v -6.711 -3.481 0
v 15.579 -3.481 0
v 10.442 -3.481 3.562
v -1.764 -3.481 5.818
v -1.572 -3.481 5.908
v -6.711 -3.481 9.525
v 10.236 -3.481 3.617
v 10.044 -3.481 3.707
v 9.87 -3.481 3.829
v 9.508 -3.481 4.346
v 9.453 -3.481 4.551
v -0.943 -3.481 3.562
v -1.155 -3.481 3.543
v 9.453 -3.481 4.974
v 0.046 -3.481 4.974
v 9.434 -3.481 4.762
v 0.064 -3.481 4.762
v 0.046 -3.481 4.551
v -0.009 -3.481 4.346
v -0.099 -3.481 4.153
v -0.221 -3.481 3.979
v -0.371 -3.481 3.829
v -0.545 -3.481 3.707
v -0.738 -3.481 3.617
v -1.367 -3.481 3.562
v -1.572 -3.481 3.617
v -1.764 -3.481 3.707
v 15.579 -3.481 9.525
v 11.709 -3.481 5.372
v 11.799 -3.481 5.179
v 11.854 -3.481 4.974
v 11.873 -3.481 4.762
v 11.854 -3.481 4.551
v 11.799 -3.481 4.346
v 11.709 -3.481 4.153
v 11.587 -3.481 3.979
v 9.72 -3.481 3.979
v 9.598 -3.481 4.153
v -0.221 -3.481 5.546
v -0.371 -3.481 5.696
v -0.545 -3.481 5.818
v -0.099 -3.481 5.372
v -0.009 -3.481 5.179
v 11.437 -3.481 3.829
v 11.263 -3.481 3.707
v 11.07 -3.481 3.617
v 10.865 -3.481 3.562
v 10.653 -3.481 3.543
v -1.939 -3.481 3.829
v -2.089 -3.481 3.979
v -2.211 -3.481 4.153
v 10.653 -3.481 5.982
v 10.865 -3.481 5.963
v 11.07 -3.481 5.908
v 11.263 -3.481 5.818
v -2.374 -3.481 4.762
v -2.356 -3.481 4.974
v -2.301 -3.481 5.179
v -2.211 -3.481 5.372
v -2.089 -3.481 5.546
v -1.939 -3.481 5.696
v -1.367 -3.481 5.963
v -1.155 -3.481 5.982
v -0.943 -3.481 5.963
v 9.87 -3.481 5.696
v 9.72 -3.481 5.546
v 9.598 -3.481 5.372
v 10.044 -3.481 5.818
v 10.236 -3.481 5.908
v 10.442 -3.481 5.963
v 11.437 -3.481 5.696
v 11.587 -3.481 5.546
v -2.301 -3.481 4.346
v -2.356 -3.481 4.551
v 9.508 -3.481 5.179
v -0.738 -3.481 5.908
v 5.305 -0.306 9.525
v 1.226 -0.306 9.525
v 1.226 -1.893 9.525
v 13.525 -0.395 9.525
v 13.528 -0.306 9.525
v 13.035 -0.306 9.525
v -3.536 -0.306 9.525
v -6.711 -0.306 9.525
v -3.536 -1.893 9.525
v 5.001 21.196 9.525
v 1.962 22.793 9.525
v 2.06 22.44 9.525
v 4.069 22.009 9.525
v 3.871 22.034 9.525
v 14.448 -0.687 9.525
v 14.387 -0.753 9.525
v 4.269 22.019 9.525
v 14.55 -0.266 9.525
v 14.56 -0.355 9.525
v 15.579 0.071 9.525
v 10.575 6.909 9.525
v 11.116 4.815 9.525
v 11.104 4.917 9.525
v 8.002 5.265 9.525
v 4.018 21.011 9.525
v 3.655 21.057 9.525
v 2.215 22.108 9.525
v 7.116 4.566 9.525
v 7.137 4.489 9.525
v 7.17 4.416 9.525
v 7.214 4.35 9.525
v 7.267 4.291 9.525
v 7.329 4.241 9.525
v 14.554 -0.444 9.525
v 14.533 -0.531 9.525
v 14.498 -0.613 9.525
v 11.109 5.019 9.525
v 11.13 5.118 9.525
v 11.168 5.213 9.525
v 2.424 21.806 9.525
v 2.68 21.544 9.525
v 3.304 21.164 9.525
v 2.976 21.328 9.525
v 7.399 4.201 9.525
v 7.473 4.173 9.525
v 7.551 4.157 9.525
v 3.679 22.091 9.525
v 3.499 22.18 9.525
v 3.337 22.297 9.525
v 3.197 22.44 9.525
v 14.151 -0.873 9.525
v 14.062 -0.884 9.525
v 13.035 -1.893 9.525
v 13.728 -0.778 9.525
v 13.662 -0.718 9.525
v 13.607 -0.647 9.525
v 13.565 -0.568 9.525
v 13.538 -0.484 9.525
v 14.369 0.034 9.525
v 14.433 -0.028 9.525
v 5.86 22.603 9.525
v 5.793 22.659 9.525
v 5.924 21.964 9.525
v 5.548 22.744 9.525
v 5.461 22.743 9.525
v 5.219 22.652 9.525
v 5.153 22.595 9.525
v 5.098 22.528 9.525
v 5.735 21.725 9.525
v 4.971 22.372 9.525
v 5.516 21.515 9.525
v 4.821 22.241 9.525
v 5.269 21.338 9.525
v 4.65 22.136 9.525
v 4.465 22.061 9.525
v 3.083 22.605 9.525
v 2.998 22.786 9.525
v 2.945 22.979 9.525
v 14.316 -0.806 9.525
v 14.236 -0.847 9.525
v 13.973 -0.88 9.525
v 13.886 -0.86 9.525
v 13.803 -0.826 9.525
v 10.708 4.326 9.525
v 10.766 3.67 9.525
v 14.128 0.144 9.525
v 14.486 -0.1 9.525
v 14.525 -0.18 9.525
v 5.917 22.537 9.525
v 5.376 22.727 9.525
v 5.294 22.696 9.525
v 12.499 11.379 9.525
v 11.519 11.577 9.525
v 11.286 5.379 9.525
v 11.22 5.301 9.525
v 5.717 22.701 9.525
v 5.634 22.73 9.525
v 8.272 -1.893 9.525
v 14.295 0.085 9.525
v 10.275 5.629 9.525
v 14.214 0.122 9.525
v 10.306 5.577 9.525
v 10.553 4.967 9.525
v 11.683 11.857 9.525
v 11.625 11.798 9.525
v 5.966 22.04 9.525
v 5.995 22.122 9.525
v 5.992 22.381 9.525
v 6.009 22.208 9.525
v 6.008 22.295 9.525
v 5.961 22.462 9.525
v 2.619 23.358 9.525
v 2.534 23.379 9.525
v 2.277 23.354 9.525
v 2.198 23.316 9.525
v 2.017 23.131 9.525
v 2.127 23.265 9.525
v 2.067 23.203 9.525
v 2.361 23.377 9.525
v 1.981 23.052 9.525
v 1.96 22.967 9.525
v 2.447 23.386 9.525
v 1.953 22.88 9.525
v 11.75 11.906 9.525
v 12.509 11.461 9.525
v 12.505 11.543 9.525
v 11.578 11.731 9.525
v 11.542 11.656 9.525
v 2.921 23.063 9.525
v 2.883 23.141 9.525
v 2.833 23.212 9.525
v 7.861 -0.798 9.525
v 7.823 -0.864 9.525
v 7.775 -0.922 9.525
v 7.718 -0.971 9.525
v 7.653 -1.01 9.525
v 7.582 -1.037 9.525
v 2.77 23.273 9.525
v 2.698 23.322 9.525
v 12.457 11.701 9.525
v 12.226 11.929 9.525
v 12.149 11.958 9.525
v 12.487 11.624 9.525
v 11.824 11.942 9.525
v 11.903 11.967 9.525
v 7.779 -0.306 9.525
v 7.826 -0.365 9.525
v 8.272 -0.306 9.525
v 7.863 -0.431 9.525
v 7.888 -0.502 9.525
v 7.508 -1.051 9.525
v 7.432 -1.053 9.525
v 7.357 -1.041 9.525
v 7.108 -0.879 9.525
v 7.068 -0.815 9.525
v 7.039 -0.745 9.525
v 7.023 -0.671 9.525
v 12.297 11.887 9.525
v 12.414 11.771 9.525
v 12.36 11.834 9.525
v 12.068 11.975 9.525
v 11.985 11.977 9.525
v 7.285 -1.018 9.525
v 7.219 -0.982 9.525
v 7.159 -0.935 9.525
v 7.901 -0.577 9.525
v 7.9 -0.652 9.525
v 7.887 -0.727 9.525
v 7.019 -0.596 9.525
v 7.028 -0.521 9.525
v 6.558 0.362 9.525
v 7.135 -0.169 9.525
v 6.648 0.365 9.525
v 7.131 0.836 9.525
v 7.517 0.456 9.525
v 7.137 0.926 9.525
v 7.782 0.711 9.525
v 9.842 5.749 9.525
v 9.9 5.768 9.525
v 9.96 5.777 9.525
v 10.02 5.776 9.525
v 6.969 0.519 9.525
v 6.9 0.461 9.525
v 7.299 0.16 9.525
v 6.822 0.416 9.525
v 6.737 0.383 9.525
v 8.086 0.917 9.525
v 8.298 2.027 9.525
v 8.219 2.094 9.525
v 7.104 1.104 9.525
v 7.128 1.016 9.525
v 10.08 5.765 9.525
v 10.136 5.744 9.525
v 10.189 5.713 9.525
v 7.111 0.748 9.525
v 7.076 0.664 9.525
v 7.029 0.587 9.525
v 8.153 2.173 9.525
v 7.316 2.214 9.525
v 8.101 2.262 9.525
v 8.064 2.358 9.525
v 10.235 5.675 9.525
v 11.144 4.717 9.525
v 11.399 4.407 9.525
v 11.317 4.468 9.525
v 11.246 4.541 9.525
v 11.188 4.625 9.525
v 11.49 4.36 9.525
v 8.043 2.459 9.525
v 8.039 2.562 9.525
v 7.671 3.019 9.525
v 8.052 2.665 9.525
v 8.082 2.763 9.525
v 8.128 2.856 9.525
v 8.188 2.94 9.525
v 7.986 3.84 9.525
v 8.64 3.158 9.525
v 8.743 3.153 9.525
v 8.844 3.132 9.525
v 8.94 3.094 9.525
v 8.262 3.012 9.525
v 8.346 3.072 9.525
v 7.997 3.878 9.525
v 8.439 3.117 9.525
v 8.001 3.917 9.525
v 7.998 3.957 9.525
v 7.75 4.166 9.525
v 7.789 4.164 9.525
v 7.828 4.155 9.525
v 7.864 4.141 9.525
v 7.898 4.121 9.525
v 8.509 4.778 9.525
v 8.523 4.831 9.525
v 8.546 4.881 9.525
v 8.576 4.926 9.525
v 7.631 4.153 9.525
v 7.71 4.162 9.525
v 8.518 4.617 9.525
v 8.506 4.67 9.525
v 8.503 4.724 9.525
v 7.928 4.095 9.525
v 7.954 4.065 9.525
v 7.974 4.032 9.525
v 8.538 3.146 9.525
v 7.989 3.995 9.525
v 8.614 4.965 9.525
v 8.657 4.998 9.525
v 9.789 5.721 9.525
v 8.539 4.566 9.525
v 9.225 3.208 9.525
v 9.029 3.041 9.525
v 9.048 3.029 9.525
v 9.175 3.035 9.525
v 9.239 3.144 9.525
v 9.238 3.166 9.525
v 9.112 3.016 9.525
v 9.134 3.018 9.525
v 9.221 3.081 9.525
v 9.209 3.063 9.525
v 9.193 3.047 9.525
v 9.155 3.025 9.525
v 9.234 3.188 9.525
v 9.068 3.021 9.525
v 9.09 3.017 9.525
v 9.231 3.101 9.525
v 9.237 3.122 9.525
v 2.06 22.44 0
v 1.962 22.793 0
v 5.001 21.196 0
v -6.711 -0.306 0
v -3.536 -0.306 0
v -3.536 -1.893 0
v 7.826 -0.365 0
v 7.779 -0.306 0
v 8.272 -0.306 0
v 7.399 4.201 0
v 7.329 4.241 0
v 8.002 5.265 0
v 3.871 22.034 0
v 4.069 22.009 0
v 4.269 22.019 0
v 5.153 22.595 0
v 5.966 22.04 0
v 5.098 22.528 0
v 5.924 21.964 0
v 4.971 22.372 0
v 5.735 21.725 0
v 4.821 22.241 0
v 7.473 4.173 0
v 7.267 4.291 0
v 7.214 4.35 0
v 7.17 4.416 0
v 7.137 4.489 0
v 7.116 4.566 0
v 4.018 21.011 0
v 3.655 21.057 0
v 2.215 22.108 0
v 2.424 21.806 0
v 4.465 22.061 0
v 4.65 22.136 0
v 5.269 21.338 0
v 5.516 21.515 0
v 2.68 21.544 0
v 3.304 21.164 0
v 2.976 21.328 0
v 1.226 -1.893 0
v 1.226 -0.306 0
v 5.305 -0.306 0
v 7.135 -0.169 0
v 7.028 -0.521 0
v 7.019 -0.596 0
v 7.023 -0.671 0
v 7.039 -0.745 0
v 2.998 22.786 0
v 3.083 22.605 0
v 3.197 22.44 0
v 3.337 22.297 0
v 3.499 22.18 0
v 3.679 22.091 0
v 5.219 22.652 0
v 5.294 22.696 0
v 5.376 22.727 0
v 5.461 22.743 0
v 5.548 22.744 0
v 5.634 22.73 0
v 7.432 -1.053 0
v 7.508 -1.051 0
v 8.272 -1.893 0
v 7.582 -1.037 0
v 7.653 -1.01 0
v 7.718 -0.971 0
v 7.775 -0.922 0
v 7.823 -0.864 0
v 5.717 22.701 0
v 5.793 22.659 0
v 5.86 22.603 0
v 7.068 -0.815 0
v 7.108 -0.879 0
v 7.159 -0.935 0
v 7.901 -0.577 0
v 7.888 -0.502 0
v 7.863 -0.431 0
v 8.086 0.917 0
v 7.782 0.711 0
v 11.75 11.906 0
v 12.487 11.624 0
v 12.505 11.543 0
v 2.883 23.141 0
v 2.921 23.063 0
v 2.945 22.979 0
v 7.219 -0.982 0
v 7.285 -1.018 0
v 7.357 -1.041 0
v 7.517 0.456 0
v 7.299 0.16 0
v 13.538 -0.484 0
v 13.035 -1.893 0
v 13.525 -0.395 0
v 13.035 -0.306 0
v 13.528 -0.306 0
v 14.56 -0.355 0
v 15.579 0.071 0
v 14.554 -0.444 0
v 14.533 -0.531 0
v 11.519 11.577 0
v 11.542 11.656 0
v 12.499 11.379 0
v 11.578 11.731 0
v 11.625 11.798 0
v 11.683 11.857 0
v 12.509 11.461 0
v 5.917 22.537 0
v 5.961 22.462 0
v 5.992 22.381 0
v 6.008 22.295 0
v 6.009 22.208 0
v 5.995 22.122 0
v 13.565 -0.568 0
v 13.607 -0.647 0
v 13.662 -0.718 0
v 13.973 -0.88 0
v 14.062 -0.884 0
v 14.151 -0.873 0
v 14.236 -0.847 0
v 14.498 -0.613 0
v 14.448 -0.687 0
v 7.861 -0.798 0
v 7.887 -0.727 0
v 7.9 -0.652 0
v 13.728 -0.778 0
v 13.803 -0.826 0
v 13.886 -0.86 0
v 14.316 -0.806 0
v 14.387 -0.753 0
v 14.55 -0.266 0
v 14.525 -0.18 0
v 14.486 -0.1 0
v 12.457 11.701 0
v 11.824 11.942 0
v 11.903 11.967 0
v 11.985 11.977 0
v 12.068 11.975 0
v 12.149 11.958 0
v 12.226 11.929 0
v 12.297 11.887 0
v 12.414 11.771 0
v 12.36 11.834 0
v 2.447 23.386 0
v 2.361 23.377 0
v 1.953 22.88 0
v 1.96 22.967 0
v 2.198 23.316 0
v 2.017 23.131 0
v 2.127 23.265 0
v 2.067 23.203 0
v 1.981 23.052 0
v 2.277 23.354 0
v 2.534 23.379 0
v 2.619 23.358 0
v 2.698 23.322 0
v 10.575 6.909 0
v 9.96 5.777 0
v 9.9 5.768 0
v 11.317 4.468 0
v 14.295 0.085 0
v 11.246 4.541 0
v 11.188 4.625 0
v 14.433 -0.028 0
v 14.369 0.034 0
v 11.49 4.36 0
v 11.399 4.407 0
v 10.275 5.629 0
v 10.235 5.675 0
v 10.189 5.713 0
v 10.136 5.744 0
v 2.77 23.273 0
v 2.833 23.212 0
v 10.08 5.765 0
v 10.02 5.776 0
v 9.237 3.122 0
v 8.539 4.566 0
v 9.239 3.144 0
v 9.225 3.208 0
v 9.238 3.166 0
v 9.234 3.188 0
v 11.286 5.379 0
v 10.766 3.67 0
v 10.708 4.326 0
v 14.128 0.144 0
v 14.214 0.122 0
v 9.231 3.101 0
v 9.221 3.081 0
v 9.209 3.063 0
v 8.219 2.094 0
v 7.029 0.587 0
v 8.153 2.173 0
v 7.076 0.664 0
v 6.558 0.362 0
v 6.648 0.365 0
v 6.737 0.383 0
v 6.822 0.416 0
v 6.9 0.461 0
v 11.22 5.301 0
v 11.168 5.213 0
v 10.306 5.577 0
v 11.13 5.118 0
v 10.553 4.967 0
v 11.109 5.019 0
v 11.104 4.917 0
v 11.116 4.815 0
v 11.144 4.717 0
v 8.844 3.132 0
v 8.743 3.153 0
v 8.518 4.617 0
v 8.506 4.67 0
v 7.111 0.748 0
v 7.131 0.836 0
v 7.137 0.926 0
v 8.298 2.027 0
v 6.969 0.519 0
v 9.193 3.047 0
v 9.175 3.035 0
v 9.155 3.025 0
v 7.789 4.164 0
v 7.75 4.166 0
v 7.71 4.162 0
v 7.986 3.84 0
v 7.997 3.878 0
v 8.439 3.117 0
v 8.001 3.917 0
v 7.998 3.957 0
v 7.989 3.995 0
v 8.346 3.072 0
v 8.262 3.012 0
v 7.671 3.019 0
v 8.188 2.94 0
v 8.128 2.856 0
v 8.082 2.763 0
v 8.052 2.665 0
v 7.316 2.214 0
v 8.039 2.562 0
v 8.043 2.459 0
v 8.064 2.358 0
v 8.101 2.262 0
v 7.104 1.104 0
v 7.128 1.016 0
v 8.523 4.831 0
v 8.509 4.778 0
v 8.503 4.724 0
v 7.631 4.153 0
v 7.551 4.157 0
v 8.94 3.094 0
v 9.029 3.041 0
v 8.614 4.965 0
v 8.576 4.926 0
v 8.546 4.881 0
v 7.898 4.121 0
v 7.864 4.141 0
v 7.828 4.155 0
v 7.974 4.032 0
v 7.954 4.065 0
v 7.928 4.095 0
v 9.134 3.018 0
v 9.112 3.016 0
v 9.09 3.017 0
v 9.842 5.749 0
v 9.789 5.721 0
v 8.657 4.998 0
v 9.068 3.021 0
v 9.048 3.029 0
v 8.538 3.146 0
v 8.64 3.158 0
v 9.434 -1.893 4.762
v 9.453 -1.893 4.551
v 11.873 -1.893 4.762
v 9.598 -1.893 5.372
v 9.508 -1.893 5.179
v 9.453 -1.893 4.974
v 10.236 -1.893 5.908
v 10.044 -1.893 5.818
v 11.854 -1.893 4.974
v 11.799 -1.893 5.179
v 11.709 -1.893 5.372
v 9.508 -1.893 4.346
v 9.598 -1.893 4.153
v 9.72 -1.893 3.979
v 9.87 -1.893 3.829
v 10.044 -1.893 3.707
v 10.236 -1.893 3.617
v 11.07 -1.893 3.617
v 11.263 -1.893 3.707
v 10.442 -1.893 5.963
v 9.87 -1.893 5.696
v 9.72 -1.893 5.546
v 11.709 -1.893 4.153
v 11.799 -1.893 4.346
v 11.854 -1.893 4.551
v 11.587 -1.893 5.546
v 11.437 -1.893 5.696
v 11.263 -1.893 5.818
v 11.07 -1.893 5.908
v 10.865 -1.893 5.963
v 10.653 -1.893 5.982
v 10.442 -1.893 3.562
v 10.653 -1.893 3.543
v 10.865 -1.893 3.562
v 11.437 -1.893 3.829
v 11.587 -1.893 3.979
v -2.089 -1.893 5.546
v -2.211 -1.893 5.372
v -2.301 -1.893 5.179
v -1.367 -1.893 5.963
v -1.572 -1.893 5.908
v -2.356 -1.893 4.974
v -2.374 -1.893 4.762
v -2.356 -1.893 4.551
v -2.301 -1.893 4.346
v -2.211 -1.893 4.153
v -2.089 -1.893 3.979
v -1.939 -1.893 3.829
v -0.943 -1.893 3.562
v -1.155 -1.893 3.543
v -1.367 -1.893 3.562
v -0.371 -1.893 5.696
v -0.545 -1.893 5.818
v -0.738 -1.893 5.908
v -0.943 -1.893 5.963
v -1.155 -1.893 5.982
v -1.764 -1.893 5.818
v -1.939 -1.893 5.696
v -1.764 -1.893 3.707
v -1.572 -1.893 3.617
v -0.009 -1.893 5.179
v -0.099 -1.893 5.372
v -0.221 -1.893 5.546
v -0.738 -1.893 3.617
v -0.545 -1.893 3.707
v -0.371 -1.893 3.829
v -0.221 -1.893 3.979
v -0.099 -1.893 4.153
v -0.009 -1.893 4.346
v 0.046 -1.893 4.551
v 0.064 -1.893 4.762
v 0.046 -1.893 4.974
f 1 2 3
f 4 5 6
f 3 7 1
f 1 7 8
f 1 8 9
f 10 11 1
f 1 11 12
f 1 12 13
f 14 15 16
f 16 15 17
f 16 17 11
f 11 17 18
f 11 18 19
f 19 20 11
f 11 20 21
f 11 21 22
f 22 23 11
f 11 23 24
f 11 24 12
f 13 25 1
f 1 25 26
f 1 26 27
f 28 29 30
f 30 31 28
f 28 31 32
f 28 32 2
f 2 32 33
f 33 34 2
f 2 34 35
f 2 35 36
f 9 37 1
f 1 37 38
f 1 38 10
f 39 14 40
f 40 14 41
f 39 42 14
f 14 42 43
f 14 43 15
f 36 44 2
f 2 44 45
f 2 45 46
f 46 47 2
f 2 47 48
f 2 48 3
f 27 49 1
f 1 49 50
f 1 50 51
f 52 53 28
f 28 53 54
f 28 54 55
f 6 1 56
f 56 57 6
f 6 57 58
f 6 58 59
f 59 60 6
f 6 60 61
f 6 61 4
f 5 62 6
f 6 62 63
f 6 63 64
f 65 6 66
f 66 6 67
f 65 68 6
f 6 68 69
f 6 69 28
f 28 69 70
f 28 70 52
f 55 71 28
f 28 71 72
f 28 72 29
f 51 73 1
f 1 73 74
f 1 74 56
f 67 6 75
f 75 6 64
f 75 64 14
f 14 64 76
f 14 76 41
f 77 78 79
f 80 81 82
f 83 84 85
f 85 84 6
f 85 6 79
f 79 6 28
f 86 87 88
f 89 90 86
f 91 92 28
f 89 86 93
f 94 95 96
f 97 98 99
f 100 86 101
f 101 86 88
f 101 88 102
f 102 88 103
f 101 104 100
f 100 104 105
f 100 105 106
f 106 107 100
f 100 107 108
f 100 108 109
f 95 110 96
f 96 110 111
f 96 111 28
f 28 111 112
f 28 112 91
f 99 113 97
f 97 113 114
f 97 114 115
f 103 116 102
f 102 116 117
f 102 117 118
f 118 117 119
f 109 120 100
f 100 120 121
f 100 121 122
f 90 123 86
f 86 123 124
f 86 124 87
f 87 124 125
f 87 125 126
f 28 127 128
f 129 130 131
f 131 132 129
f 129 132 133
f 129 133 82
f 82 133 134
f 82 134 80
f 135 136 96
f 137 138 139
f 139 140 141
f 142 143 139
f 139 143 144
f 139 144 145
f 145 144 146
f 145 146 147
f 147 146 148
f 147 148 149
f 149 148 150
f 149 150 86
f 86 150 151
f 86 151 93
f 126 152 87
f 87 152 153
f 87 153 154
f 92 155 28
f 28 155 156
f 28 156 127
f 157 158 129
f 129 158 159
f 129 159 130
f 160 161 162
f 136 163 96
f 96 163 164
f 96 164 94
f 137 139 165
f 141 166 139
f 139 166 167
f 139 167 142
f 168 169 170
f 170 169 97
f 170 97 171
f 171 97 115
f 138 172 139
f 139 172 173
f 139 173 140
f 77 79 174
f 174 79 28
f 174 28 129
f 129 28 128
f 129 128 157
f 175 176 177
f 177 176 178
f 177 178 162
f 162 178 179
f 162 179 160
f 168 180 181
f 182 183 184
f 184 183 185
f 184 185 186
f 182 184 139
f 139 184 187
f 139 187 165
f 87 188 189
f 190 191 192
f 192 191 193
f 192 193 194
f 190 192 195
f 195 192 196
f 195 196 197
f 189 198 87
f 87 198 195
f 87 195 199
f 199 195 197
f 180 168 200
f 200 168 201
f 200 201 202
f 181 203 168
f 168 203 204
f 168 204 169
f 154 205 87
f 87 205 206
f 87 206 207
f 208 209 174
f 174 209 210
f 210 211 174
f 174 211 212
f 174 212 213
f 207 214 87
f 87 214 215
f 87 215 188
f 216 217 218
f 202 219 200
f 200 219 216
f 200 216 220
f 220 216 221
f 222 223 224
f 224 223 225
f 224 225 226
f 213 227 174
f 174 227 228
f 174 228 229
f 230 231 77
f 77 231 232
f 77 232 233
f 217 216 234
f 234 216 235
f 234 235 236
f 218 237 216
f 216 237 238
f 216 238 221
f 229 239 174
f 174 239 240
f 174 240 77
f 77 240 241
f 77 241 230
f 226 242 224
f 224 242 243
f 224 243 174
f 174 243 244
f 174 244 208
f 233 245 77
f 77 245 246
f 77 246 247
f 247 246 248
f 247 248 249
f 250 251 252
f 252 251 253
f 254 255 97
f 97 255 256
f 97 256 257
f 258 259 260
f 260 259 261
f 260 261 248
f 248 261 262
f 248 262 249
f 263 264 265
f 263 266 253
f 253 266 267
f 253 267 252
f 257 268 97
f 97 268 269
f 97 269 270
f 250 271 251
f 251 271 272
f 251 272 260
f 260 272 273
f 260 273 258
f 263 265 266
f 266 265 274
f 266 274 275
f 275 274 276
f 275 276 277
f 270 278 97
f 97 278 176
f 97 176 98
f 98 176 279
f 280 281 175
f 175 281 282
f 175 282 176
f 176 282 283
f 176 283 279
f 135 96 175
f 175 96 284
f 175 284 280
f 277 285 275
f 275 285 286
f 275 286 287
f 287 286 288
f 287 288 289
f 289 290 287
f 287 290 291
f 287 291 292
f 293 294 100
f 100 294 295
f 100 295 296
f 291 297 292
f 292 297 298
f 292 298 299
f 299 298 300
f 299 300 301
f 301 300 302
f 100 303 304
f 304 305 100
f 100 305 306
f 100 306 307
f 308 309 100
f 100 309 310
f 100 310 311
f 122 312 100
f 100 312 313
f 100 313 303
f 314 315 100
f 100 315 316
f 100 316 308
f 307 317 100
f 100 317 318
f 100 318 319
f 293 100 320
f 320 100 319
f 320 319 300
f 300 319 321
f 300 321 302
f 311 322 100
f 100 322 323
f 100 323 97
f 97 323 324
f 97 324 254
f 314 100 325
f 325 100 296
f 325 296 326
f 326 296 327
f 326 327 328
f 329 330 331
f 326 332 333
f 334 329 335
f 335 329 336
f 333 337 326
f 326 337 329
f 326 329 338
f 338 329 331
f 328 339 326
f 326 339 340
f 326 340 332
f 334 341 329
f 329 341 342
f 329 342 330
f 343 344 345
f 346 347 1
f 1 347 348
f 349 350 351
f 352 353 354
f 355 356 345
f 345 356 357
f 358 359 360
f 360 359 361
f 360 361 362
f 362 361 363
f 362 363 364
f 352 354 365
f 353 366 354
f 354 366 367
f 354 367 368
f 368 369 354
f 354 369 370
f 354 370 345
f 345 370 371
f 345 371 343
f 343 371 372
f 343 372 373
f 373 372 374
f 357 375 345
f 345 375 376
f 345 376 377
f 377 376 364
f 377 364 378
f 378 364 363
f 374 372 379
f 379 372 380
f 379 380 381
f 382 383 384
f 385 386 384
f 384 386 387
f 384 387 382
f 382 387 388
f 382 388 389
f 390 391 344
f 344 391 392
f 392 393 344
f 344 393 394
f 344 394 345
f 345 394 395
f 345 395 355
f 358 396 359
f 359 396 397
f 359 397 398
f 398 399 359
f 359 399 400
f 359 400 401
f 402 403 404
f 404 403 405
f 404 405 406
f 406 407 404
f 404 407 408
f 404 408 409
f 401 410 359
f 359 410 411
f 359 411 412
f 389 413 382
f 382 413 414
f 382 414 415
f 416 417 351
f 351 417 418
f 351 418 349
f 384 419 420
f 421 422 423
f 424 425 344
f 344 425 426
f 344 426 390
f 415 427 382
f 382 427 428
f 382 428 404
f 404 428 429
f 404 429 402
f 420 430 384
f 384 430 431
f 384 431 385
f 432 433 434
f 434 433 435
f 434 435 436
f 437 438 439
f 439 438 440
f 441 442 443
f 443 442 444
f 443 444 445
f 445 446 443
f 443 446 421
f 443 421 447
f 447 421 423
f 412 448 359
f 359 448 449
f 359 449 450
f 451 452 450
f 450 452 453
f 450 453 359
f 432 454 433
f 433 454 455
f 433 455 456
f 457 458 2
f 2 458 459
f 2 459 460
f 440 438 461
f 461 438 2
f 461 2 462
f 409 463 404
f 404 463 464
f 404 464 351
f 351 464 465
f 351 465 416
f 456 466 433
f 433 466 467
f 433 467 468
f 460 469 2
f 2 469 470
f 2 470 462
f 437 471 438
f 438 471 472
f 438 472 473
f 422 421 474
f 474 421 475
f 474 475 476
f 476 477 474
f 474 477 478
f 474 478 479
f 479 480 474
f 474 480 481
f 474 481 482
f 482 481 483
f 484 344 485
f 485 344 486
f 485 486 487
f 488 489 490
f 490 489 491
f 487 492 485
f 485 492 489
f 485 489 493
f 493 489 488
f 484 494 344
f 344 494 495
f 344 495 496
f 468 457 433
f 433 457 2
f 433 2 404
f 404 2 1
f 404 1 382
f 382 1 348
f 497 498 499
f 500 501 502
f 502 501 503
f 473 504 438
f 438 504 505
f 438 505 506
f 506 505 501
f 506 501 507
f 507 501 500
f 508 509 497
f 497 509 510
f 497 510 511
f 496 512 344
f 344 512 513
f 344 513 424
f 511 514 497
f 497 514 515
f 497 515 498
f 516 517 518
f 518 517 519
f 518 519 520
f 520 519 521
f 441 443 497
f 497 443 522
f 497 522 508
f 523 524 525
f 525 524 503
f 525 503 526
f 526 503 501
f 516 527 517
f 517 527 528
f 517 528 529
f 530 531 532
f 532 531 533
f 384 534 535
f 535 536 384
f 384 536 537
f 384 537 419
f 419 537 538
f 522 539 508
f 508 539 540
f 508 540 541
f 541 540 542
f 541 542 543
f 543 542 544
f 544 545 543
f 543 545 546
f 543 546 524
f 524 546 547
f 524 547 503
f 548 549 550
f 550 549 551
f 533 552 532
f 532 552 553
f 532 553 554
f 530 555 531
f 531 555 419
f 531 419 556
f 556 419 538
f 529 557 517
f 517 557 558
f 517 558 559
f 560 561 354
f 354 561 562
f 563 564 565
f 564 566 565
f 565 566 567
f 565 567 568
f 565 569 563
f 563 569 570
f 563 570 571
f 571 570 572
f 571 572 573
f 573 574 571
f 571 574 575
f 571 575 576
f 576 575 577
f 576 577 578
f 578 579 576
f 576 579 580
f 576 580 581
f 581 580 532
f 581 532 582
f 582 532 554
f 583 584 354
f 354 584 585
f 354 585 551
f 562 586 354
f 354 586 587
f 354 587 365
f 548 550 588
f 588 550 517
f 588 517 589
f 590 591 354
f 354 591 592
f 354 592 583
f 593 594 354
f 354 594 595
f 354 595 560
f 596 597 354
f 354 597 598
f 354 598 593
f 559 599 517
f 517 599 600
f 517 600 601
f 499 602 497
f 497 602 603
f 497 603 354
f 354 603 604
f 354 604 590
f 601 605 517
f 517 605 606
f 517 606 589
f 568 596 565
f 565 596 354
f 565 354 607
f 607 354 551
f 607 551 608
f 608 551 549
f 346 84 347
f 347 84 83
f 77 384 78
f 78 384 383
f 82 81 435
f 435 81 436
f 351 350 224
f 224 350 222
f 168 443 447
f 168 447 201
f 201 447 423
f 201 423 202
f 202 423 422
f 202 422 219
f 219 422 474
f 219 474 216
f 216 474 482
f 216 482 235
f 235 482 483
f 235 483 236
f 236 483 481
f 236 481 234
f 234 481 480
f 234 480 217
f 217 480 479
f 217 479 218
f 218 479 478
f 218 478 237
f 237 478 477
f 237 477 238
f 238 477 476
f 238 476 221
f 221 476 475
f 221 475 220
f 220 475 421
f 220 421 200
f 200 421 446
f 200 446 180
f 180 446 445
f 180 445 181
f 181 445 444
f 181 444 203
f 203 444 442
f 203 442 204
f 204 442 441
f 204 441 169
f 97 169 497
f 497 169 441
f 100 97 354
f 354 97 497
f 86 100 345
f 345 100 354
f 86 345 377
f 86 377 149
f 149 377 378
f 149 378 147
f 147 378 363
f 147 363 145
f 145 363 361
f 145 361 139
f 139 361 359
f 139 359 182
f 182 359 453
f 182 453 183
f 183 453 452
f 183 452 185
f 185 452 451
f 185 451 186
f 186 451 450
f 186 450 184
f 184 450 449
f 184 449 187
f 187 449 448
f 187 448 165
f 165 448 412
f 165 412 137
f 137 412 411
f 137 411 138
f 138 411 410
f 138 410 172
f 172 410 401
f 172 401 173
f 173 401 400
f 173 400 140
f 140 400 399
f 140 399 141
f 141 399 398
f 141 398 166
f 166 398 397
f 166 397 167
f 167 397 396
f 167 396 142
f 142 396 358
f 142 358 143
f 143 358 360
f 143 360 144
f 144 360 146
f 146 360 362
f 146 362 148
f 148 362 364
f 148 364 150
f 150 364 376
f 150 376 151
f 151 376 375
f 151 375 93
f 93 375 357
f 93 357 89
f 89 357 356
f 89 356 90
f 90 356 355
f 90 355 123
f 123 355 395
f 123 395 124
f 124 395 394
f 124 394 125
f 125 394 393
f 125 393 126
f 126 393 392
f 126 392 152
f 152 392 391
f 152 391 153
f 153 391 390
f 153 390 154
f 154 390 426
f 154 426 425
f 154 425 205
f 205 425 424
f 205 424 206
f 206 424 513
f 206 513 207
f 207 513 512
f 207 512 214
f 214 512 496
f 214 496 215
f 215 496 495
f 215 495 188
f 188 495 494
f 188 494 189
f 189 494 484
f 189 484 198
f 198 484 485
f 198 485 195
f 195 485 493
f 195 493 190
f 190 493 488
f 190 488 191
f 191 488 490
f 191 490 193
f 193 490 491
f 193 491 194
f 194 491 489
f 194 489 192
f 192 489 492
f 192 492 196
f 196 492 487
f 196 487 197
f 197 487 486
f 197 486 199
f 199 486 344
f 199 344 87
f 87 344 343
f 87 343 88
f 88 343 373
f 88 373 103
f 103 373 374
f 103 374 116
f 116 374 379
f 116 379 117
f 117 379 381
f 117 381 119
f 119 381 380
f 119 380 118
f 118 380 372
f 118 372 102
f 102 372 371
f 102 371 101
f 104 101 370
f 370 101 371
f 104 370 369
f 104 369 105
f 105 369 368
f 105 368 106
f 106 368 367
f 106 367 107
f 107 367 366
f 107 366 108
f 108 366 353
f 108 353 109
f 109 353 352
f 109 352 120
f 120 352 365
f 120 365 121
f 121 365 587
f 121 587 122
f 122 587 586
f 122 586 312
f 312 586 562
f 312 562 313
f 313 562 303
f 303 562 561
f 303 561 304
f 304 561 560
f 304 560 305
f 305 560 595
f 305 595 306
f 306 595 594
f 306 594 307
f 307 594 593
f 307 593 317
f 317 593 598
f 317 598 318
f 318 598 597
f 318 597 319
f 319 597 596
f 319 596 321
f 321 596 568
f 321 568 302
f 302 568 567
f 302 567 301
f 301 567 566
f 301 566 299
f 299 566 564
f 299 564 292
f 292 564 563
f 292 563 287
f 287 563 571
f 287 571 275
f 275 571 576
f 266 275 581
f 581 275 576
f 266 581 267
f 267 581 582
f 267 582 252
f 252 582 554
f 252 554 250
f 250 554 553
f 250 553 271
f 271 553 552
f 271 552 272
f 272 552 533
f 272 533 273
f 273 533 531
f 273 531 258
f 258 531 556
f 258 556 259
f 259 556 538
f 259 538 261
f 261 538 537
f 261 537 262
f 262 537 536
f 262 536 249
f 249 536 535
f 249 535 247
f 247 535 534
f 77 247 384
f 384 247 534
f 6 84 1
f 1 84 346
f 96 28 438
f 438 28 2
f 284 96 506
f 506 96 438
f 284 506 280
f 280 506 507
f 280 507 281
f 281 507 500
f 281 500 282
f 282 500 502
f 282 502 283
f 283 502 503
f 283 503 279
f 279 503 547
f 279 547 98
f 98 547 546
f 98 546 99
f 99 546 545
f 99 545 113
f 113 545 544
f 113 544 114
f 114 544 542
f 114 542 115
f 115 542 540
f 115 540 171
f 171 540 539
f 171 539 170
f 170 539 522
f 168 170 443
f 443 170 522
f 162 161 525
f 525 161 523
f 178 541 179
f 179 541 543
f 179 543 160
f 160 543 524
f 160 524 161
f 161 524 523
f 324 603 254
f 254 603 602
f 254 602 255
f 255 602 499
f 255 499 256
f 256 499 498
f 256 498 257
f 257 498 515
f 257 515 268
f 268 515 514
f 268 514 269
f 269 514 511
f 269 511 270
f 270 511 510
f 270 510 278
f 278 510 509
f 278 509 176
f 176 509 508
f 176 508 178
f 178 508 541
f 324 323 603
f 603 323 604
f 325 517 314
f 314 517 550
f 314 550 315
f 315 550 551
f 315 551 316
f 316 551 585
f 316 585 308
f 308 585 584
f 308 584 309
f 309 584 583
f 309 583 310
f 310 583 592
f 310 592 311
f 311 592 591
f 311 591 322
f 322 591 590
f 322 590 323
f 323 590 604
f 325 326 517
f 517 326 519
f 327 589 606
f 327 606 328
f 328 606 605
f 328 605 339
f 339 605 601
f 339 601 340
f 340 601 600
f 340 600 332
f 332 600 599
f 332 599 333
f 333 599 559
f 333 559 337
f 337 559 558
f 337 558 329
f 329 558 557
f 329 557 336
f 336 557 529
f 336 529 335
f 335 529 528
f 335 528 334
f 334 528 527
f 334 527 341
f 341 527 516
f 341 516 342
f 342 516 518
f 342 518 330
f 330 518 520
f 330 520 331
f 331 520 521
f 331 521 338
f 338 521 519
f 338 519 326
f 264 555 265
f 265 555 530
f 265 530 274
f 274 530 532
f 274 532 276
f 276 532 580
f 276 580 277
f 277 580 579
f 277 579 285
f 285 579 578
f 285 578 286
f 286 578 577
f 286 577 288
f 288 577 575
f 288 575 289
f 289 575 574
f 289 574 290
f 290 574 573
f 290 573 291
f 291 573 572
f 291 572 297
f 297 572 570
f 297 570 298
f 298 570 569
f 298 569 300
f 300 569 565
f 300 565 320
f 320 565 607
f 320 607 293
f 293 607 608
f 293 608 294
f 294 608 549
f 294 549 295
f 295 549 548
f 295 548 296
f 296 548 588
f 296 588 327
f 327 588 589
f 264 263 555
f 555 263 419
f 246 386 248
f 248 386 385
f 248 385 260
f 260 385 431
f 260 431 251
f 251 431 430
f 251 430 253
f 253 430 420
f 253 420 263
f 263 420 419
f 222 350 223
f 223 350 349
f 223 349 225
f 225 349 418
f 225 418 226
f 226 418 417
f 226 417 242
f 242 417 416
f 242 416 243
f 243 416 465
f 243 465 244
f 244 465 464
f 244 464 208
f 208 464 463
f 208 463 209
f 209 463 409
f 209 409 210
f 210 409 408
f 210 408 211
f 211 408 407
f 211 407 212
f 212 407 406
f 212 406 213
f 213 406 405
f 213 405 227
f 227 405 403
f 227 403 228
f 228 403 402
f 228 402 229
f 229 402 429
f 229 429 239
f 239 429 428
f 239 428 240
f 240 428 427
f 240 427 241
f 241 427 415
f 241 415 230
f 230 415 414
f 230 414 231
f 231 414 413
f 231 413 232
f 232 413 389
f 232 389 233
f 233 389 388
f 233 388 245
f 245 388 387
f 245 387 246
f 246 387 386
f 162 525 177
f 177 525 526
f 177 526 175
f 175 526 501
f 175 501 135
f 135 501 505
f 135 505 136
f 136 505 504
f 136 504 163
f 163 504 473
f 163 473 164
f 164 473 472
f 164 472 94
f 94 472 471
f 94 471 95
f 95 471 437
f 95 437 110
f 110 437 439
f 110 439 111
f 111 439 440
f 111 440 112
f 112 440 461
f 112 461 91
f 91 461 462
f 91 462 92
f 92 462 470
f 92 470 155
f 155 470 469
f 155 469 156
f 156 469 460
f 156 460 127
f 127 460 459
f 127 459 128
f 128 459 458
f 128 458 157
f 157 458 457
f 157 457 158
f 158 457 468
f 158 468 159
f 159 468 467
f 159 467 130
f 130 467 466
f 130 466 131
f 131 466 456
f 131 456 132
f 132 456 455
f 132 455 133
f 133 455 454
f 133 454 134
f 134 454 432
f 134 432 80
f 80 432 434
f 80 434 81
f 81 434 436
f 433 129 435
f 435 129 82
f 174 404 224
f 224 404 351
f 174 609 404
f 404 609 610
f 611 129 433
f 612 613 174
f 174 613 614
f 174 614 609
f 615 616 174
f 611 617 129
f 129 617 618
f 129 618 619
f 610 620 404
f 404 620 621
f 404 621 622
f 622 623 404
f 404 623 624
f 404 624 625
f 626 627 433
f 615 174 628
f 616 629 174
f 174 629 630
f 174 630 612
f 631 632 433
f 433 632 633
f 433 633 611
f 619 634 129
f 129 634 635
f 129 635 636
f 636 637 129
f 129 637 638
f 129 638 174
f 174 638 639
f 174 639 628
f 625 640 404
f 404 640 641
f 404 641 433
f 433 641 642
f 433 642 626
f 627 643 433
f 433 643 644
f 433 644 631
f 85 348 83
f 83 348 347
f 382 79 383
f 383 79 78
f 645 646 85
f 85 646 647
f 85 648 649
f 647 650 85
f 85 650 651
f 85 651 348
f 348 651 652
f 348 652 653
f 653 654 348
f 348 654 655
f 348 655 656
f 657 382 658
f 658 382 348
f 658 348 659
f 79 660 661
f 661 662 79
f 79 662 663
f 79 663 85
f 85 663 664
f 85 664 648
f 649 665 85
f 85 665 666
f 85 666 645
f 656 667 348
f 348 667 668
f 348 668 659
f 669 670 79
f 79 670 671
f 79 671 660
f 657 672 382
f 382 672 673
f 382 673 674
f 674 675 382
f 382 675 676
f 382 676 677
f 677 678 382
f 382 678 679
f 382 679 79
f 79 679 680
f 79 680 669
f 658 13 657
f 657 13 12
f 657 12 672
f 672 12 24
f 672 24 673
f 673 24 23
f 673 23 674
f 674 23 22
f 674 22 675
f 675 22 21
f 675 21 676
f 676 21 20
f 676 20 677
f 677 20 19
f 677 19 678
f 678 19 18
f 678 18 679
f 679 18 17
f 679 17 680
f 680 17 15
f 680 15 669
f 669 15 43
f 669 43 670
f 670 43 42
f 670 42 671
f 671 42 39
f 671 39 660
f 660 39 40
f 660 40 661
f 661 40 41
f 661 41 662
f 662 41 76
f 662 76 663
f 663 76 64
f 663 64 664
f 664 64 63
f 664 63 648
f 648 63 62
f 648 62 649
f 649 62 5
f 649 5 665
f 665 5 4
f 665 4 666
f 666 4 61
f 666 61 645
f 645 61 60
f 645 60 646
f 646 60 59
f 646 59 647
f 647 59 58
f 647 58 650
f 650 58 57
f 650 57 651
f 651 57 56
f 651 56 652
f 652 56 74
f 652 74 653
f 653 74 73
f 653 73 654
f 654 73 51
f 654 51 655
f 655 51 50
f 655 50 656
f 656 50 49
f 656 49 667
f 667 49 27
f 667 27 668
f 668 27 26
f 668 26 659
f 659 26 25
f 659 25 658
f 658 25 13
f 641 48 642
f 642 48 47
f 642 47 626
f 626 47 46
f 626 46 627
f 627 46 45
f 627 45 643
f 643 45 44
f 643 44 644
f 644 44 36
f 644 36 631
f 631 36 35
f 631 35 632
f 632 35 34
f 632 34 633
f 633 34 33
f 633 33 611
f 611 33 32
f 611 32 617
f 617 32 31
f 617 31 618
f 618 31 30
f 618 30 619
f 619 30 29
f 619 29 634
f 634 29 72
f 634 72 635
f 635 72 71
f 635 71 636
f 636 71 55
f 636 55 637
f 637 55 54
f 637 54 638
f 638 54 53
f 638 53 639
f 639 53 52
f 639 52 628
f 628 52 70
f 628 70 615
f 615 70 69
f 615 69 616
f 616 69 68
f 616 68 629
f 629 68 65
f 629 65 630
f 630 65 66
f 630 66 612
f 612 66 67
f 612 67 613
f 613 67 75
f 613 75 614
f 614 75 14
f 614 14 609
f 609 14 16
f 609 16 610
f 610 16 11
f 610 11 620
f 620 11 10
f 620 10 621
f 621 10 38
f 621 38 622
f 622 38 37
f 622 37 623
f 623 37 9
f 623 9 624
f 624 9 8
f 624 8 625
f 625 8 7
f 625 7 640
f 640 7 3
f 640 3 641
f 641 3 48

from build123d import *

# Parameters (mm, degrees)
BOSS_CONFIGUP_DEPTH       = 9.525
SKETCH2_W                 = 4.7625
SKETCH2_H                 = 9.525
CUT_NUTSLOT_DEPTH         = 1.5875
F_2_CLEARANCE_HOLE1_D     = 2.4384
F_2_CLEARANCE_HOLE1_DEPTH = 1.5875


with BuildPart() as part:
    # Sketch-ConfigUp → Boss-ConfigUp (new body)
    with BuildSketch(Plane.XY):
        with BuildLine():
            Line((7.315587682, 2.213714366), (7.104153068, 1.103671392))
            ThreePointArc((7.104153068, 1.103671392), (7.02887285, 0.587148983), (6.557966762, 0.361960248))
            Line((6.557966762, 0.361960248), (5.304651863, -0.305823275))
            Line((5.304651863, -0.305823275), (-6.711147083, -0.305823275))
            Line((-6.711147083, -0.305823275), (-6.711147083, -3.480823275))
            Line((-6.711147083, -3.480823275), (15.578632688, -3.480823275))
            Line((15.578632688, -3.480823275), (15.578632688, 0.0709065))
            Line((15.578632688, 0.0709065), (11.489555896, 4.360169677))
            ThreePointArc((11.489555896, 4.360169677), (11.115827658, 4.815287007), (11.286259089, 5.378987021))
            Line((11.286259089, 5.378987021), (12.499382227, 11.378887869))
            ThreePointArc((12.499382227, 11.378887869), (12.108389527, 11.968060772), (11.519216625, 11.577068073))
            Line((11.519216625, 11.577068073), (10.575379996, 6.90901253))
            Line((10.575379996, 6.90901253), (8.002147984, 5.265295329))
            Line((8.002147984, 5.265295329), (5.000864154, 21.195713966))
            ThreePointArc((5.000864154, 21.195713966), (5.515878545, 21.515221814), (5.923633344, 21.963620199))
            ThreePointArc((5.923633344, 21.963620199), (5.792717863, 22.658502302), (5.09783576, 22.527586821))
            ThreePointArc((5.09783576, 22.527586821), (3.870546529, 22.033736006), (2.944624614, 22.978614881))
            ThreePointArc((2.944624614, 22.978614881), (2.360697542, 23.377399504), (1.96191292, 22.793472432))
            ThreePointArc((1.96191292, 22.793472432), (2.679570384, 21.54396233), (4.01815246, 21.010571517))
            Line((4.01815246, 21.010571517), (7.116284258, 4.566096638))
            ThreePointArc((7.116284258, 4.566096638), (7.329390516, 4.240581461), (7.710370279, 4.161658542))
            ThreePointArc((7.710370279, 4.161658542), (7.941736771, 4.080744656), (7.986384484, 3.83973824))
            ThreePointArc((7.986384484, 3.83973824), (7.67084838, 3.018532349), (7.315587682, 2.213714366))
        make_face()
        with BuildLine():
            Line((13.528041298, -0.305823275), (7.778926955, -0.305823275))
            ThreePointArc((7.778926955, -0.305823275), (7.581920737, -1.036684597), (7.028198014, -0.520582992))
            ThreePointArc((7.028198014, -0.520582992), (7.40177857, 0.312546128), (8.086491983, 0.916561115))
            Line((8.086491983, 0.916561115), (8.297926597, 2.026604089))
            ThreePointArc((8.297926597, 2.026604089), (8.15636952, 2.899078498), (9.028843929, 3.040635574))
            ThreePointArc((9.028843929, 3.040635574), (9.1929804, 3.047421198), (9.225253016, 3.208496658))
            Line((9.225253016, 3.208496658), (8.538827812, 4.566096638))
            ThreePointArc((8.538827812, 4.566096638), (8.51473614, 4.804983129), (8.657105129, 4.998317646))
            Line((8.657105129, 4.998317646), (9.788823733, 5.721231603))
            ThreePointArc((9.788823733, 5.721231603), (10.079629218, 5.764709454), (10.306093487, 5.577167225))
            ThreePointArc((10.306093487, 5.577167225), (10.642479335, 4.649344509), (10.765760559, 3.670154961))
            Line((10.765760559, 3.670154961), (13.32194446, 0.988829556))
            Line((13.32194446, 0.988829556), (14.12753679, 0.143798344))
            ThreePointArc((14.12753679, 0.143798344), (14.352707563, -0.780903824), (13.528041298, -0.305823275))
        make_face(mode=Mode.SUBTRACT)
    extrude(amount=BOSS_CONFIGUP_DEPTH)

    # Sketch2 → Cut-NutSlot (cut)
    with BuildSketch(Plane(origin=(0.004306068, -0.305823275, 0), x_dir=(-1, 0, 0), z_dir=(0, -1, 0))):
        with Locations((-10.649178058, -4.7625)):
            Rectangle(SKETCH2_W, SKETCH2_H)
        with Locations((1.159203152, -4.7625)):
            Rectangle(SKETCH2_W, SKETCH2_H)
    extrude(amount=CUT_NUTSLOT_DEPTH, mode=Mode.SUBTRACT)

    # #2 Clearance Hole1
    with Locations(Plane(origin=(0, -3.480823275, 0), x_dir=(-1, 0, 0), z_dir=(0, -1, 0))):
        with Locations((-10.653484126, -4.7625), (1.154897083, -4.7625)):
            Hole(F_2_CLEARANCE_HOLE1_D / 2, depth=F_2_CLEARANCE_HOLE1_DEPTH)


solid = part.part
